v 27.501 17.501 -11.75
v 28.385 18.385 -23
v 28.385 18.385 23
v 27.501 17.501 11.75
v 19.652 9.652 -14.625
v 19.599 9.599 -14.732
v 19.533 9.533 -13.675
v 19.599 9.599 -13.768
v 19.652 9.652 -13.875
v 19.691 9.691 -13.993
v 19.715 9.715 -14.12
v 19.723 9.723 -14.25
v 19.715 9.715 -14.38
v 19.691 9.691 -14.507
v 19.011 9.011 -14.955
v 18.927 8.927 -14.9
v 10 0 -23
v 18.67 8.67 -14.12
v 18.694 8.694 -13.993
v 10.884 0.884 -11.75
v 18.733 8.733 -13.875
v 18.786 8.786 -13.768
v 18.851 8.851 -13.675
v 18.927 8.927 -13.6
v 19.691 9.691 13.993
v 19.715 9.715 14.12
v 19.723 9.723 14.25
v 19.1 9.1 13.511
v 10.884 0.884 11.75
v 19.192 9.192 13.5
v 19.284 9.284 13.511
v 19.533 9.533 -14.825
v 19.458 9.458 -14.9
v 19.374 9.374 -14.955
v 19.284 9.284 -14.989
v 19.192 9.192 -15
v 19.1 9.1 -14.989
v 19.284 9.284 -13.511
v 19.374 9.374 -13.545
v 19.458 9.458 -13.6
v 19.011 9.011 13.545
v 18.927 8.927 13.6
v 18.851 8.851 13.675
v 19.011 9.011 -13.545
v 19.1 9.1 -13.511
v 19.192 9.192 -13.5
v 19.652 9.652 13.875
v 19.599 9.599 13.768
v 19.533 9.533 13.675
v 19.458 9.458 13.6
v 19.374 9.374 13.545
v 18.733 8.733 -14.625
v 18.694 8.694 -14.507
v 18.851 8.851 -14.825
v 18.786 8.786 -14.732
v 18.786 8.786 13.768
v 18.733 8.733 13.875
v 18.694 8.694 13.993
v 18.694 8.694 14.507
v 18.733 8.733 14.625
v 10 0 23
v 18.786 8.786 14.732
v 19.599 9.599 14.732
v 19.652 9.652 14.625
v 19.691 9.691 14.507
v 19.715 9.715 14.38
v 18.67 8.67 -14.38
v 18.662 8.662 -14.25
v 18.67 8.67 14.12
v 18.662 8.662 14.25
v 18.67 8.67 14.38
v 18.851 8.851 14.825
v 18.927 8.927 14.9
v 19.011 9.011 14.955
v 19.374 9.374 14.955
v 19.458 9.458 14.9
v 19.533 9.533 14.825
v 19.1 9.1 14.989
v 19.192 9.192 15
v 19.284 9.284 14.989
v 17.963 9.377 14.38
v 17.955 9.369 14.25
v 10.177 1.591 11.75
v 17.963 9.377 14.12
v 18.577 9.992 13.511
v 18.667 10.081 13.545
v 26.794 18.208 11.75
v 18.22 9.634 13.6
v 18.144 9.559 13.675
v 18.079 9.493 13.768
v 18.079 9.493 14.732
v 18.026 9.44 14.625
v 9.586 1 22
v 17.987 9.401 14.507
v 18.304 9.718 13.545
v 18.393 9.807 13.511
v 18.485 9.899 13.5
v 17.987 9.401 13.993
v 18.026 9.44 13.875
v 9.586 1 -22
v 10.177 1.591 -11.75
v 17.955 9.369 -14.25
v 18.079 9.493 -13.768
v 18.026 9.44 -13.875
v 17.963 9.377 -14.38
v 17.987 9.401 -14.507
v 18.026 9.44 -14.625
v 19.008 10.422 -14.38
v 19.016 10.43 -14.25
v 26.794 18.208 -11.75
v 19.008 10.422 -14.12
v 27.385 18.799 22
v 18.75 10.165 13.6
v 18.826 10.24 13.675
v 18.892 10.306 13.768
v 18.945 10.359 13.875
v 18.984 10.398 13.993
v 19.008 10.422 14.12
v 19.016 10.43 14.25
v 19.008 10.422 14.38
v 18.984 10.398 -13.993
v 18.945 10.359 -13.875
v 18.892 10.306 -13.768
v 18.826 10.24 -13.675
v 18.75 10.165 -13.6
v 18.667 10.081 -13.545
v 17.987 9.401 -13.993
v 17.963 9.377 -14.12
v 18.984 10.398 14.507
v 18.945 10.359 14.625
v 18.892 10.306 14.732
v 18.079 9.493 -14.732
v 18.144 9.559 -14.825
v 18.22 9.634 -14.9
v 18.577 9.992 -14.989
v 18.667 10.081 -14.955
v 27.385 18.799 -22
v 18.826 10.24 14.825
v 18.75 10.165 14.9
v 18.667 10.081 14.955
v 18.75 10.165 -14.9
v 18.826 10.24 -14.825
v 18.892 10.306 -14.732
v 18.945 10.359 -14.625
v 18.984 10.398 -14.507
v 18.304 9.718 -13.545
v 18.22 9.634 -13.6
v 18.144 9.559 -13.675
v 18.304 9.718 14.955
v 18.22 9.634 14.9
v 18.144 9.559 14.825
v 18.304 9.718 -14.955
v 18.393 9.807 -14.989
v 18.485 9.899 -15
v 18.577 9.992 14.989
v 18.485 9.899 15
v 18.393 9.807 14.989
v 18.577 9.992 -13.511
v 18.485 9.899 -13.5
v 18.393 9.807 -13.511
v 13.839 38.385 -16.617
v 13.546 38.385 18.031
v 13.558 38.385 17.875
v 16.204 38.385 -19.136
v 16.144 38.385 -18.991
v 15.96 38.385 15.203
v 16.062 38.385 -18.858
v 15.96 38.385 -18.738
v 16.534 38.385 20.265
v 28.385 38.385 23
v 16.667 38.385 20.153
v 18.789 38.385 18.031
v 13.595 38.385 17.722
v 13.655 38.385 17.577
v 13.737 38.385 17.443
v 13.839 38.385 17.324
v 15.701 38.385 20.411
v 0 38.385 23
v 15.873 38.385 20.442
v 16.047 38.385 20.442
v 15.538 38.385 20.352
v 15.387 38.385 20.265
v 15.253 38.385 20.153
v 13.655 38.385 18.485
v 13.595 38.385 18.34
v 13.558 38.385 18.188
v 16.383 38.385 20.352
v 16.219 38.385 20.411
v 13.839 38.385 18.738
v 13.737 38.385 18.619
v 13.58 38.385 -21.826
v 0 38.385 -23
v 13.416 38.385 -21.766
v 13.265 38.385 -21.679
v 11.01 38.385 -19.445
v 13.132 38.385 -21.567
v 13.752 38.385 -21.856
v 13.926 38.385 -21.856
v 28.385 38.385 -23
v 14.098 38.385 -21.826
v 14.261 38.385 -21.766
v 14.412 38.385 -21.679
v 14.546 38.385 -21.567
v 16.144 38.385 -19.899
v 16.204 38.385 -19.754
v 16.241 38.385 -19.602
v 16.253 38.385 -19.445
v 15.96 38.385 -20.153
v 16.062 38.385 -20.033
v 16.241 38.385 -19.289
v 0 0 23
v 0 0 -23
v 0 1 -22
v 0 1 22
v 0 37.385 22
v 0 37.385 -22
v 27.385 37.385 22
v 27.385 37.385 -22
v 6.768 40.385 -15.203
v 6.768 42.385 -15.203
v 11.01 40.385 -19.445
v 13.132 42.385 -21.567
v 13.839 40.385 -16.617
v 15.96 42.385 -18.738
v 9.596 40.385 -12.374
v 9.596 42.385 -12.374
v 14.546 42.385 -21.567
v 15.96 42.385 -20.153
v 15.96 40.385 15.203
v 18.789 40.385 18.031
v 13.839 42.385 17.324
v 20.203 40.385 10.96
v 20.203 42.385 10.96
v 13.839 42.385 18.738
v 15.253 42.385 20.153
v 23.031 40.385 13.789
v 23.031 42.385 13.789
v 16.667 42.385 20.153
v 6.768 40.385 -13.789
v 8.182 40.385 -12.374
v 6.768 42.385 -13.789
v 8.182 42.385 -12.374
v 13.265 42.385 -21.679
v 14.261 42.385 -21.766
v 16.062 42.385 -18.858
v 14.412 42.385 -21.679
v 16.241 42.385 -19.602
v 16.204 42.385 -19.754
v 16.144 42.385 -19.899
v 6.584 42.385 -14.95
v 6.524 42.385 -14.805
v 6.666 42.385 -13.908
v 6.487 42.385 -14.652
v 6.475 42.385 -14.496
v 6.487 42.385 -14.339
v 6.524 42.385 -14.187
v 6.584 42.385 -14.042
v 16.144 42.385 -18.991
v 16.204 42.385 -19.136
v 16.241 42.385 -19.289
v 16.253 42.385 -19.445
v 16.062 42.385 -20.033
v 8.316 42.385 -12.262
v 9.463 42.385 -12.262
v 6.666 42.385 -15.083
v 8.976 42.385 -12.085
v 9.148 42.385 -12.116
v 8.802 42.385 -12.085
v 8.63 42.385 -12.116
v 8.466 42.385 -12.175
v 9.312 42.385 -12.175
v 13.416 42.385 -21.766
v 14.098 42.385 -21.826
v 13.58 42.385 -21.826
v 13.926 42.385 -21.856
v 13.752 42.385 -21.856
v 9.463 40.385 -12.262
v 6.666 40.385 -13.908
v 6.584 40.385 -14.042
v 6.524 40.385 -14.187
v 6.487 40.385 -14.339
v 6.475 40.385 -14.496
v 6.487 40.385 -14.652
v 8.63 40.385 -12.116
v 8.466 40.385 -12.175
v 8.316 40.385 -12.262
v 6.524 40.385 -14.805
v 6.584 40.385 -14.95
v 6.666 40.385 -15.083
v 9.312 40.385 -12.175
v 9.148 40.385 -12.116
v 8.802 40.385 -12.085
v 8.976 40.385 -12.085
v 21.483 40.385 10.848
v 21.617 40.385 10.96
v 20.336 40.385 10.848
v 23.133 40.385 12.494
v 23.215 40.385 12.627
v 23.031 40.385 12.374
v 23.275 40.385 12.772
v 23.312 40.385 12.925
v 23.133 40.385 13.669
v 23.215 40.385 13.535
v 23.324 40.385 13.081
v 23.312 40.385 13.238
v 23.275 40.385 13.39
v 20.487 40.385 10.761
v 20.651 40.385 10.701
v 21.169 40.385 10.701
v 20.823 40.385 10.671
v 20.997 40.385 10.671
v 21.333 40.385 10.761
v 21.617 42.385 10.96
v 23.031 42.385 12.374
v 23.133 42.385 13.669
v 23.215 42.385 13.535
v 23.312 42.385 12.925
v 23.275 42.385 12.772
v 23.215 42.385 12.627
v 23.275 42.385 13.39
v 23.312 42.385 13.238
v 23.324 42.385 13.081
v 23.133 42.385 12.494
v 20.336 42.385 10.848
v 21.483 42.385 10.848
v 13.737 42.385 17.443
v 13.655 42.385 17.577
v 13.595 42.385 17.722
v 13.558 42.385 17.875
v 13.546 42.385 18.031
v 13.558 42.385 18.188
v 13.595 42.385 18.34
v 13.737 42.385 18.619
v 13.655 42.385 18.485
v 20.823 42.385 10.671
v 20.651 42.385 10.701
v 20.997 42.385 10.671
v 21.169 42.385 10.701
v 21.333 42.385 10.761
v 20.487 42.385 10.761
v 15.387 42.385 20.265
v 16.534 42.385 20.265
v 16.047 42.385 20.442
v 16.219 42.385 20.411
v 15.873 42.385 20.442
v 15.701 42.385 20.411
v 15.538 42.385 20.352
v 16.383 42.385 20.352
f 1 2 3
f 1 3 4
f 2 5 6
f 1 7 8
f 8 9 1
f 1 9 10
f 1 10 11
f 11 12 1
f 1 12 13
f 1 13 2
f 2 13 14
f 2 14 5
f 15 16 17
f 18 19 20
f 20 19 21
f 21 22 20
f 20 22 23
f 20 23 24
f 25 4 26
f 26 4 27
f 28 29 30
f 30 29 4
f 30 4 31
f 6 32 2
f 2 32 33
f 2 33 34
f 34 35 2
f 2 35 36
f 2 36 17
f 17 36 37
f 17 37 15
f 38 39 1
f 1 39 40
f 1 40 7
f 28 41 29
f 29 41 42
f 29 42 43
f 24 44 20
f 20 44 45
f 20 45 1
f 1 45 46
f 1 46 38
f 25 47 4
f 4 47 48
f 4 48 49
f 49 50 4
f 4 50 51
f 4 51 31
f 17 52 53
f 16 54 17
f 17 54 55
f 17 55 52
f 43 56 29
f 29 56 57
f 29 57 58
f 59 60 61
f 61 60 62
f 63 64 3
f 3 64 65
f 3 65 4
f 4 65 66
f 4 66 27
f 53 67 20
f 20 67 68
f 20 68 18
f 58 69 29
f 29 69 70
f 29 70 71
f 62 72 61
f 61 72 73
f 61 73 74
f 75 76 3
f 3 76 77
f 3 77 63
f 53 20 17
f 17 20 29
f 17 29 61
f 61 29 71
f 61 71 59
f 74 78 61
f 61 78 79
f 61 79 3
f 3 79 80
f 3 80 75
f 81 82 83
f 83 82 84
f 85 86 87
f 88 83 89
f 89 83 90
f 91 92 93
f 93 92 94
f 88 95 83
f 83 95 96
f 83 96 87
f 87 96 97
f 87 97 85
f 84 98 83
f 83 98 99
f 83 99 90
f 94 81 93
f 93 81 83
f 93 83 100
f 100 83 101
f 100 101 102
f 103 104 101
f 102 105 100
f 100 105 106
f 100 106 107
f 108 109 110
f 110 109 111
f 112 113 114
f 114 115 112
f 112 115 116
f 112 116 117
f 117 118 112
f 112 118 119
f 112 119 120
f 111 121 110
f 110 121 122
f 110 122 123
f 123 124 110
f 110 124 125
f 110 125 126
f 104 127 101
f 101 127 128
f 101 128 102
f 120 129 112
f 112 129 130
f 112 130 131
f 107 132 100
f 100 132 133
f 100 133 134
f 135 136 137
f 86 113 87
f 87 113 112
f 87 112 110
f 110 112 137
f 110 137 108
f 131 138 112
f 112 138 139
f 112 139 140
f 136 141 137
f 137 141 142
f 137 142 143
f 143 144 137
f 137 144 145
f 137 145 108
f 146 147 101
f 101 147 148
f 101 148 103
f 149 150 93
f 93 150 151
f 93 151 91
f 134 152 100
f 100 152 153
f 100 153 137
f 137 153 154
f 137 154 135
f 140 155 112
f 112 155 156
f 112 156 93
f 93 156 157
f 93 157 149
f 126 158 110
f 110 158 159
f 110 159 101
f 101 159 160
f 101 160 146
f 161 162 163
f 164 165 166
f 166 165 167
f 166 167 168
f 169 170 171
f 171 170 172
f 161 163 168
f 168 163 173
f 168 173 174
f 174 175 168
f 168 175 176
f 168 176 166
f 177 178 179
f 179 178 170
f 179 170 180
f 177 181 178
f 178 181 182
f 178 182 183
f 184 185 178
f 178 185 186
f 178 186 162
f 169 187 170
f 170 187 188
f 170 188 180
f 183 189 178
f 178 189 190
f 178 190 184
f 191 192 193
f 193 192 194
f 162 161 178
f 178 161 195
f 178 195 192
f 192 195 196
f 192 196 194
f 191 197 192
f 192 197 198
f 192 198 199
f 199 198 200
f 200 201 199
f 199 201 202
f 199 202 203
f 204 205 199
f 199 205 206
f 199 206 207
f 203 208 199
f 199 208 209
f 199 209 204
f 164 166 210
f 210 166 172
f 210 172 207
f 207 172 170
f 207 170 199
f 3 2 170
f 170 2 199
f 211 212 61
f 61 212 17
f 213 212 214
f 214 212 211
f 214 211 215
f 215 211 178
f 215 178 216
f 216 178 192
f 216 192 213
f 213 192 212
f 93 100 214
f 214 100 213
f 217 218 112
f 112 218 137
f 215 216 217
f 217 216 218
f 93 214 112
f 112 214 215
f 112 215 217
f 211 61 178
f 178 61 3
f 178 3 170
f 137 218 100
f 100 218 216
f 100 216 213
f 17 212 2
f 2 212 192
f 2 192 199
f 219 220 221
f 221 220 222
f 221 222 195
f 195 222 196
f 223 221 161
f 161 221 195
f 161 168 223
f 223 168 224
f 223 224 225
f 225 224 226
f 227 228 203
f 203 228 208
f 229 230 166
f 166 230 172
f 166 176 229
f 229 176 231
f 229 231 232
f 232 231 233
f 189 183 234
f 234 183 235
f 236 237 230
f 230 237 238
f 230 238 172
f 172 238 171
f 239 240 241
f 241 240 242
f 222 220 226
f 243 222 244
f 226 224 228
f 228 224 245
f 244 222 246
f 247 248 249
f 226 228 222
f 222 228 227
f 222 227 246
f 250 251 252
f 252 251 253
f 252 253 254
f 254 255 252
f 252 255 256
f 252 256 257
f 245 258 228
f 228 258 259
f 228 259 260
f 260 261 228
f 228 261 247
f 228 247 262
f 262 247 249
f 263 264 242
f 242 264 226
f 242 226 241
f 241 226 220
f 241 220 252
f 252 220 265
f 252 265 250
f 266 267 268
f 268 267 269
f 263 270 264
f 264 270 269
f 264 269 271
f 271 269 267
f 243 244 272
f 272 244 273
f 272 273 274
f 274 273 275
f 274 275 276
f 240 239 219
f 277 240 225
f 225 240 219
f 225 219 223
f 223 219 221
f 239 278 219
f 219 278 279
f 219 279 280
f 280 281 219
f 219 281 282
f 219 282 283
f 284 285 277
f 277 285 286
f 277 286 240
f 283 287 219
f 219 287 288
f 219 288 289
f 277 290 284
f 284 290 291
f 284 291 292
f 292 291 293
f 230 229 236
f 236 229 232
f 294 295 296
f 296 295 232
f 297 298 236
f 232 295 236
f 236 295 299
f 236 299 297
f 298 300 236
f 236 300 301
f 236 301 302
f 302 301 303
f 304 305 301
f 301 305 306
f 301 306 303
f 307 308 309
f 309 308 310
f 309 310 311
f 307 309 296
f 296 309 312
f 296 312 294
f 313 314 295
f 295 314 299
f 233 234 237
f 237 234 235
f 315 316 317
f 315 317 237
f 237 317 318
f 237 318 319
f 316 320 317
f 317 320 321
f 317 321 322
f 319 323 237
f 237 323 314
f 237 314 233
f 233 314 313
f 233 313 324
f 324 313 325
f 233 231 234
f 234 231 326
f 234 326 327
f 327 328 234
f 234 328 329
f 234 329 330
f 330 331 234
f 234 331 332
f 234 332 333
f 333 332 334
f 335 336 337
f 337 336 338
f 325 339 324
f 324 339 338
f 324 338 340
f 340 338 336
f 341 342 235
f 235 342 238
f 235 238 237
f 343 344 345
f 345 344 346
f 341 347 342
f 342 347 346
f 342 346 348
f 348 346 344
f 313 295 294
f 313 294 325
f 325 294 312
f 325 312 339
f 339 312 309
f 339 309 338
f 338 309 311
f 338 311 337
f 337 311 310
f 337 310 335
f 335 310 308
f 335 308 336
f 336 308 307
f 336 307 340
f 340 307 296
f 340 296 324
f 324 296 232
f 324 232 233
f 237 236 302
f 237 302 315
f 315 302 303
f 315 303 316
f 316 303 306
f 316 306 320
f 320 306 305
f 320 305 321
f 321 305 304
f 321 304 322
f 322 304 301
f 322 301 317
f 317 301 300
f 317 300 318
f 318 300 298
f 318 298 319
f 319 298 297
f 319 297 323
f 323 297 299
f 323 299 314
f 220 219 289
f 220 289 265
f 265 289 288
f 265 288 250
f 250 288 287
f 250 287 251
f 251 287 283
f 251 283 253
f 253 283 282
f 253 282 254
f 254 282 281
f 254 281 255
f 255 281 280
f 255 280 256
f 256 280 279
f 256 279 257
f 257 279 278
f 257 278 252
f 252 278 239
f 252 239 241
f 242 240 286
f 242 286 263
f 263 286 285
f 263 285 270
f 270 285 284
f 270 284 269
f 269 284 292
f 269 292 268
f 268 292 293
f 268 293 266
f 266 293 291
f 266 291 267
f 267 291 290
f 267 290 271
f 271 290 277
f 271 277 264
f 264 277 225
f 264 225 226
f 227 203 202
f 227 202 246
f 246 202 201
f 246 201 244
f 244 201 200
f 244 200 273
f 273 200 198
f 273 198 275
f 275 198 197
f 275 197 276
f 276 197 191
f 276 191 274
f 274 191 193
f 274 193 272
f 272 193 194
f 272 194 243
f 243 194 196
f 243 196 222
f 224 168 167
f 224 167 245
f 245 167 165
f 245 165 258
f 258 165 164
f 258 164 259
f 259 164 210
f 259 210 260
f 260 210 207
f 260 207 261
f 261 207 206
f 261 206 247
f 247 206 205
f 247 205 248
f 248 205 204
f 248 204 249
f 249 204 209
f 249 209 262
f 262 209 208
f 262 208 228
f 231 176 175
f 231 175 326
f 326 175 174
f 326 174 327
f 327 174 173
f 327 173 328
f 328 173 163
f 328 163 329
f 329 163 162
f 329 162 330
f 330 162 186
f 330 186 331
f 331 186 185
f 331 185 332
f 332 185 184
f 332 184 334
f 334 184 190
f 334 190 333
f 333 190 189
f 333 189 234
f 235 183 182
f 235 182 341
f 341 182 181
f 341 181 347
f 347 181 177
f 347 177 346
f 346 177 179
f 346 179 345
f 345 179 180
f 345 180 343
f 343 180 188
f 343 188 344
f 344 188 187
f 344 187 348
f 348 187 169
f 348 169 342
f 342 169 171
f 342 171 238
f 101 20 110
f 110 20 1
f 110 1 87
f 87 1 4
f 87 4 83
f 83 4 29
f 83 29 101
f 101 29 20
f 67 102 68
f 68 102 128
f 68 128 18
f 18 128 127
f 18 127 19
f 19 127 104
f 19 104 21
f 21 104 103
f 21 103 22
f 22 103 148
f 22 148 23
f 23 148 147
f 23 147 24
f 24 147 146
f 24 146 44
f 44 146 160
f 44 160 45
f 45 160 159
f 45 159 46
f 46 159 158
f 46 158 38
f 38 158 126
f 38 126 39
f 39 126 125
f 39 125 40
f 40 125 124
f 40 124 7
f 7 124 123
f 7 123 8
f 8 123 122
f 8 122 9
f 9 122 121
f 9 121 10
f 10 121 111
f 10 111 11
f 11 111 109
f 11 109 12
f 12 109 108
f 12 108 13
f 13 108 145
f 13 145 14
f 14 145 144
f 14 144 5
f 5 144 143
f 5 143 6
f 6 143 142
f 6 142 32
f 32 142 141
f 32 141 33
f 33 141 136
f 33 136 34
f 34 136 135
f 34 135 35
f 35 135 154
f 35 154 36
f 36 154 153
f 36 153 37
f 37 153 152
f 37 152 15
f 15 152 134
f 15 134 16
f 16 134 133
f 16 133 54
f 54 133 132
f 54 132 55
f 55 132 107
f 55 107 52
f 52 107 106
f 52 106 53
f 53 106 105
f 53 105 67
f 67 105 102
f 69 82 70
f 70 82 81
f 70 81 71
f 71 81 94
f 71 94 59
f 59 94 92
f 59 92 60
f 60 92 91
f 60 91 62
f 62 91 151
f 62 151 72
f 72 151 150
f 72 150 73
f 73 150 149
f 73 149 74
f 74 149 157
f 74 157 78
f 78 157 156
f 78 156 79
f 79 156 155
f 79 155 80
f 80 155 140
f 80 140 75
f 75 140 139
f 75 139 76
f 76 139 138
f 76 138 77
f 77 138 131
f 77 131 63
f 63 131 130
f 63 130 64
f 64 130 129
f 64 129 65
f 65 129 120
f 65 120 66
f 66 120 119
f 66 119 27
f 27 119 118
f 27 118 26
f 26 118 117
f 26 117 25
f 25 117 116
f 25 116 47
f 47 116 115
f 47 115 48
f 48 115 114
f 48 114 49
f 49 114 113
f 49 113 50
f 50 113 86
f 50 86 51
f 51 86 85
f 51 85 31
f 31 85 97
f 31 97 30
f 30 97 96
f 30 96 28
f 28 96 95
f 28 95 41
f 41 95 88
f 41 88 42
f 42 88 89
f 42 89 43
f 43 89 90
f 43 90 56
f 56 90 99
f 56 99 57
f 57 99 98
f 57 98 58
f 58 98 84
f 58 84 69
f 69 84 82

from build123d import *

# Parameters (mm, degrees)
BOSS_EXTRU_1_DEPTH                  = 22
BOSS_EXTRU_1_DEPTH_BACK             = 22
BOSS_EXTRU_5_START                  = 22
BOSS_EXTRU_5_DEPTH                  = 1
BOSS_EXTRU_6_START                  = -22
BOSS_EXTRU_6_DEPTH                  = 1
BOSS_EXTRU_7_DEPTH                  = 2
BOSS_EXTRU_8_DEPTH                  = 2
CONG_1_R                            = 1
ENL_V_MAT_EXTRU_1_REACH             = 59.63
ESQUISSE6_R                         = 0.75
ESQUISSE6_W                         = 23.5
ESQUISSE6_H                         = 23.5
ENL_V_MAT_EXTRU_1_DIRECTION_2_DEPTH = 2


with BuildPart() as part:
    # Esquisse1 → Boss.-Extru.1 (new, two sides: drawn at the far end of the back side and taken through both)
    with BuildSketch(Plane.XY.offset(-BOSS_EXTRU_1_DEPTH_BACK)):
        Polygon((0, 38.384776311), (28.384776311, 38.384776311), (28.384776311, 18.384776311), (10, 0), (0, 0), (0, 1), (9.585786438, 1), (27.384776311, 18.798989873), (27.384776311, 37.384776311), (0, 37.384776311), align=None)
    extrude(amount=BOSS_EXTRU_1_DEPTH + BOSS_EXTRU_1_DEPTH_BACK)

    # Esquisse2 → Boss.-Extru.5 (add)
    with BuildSketch(Plane.XY.offset(BOSS_EXTRU_5_START)):
        Polygon((28.384776311, 38.384776311), (0, 38.384776311), (0, 0), (10, 0), (28.384776311, 18.384776311), align=None)
    extrude(amount=BOSS_EXTRU_5_DEPTH)

    # Esquisse3 → Boss.-Extru.6 (add)
    with BuildSketch(Plane.XY.offset(BOSS_EXTRU_6_START)):
        Polygon((0, 38.384776311), (0, 0), (10, 0), (28.384776311, 18.384776311), (28.384776311, 38.384776311), align=None)
    extrude(amount=-BOSS_EXTRU_6_DEPTH)

    # Esquisse4 → Boss.-Extru.7 (add)
    with BuildSketch(Plane(origin=(0, 38.384776311, 0), x_dir=(1, 0, 0), z_dir=(0, 1, 0))):
        Polygon((11.01040764, 19.445436483), (13.838834765, 16.617009358), (16.66726189, 19.445436483), (13.838834765, 22.273863607), align=None)
        Polygon((15.960155108, -20.859650045), (18.788582233, -18.03122292), (15.960155108, -15.202795796), (13.131727984, -18.03122292), align=None)
    extrude(amount=BOSS_EXTRU_7_DEPTH)

    # Esquisse5 → Boss.-Extru.8 (add)
    with BuildSketch(Plane(origin=(0, 40.384776311, 0), x_dir=(1, 0, 0), z_dir=(0, 1, 0))):
        Polygon((13.838834765, 22.273863607), (16.66726189, 19.445436483), (8.889087297, 11.66726189), (6.060660172, 14.495689014), align=None)
        Polygon((13.131727984, -18.03122292), (15.960155108, -20.859650045), (23.738329701, -13.081475452), (20.909902577, -10.253048327), align=None)
    extrude(amount=BOSS_EXTRU_8_DEPTH)

    # Congé1
    cong_1_edges = [part.edges().sort_by_distance(p)[0] for p in [
        (20.909902577, 41.384776311, 10.253048327),
        (23.738329701, 41.384776311, 13.081475452),
        (6.060660172, 41.384776311, -14.495689014),
        (8.889087297, 41.384776311, -11.66726189),
        (13.838834765, 40.384776311, -22.273863607),
        (16.66726189, 40.384776311, -19.445436483),
        (13.131727984, 40.384776311, 18.03122292),
        (15.960155108, 40.384776311, 20.859650045),
    ]]
    fillet(cong_1_edges, radius=CONG_1_R)

    # Esquisse6 → Enlèv. mat.-Extru.1 (cut, up to next)
    with BuildSketch(Plane(origin=(5, -5, 0), x_dir=(0, 0, -1), z_dir=(0.707106781186549, -0.707106781186546, 0)), mode=Mode.PRIVATE) as enl_v_mat_extru_1_sk1:
        with Locations((14.25, 20.071067812)):
            Circle(ESQUISSE6_R)
    enl_v_mat_extru_1_tool1 = extrude(enl_v_mat_extru_1_sk1.sketch, amount=-ENL_V_MAT_EXTRU_1_REACH, mode=Mode.PRIVATE) & part.part
    # Esquisse6 → Enlèv. mat.-Extru.1 (cut, up to next)
    with BuildSketch(Plane(origin=(5, -5, 0), x_dir=(0, 0, -1), z_dir=(0.707106781186549, -0.707106781186546, 0)), mode=Mode.PRIVATE) as enl_v_mat_extru_1_sk2:
        with Locations((-14.25, 20.071067812)):
            Circle(ESQUISSE6_R)
    enl_v_mat_extru_1_tool2 = extrude(enl_v_mat_extru_1_sk2.sketch, amount=-ENL_V_MAT_EXTRU_1_REACH, mode=Mode.PRIVATE) & part.part
    # Esquisse6 → Enlèv. mat.-Extru.1 (cut, up to next)
    with BuildSketch(Plane(origin=(5, -5, 0), x_dir=(0, 0, -1), z_dir=(0.707106781186549, -0.707106781186546, 0)), mode=Mode.PRIVATE) as enl_v_mat_extru_1_sk3:
        with Locations((0, 20.071067812)):
            Rectangle(ESQUISSE6_W, ESQUISSE6_H)
    enl_v_mat_extru_1_tool3 = extrude(enl_v_mat_extru_1_sk3.sketch, amount=-ENL_V_MAT_EXTRU_1_REACH, mode=Mode.PRIVATE) & part.part
    add(enl_v_mat_extru_1_tool1.solids().sort_by_distance((19.192388, 9.192388, -14.25))[0], mode=Mode.SUBTRACT)
    add(enl_v_mat_extru_1_tool2.solids().sort_by_distance((19.192388, 9.192388, 14.25))[0], mode=Mode.SUBTRACT)
    add(enl_v_mat_extru_1_tool3.solids().sort_by_distance((19.192388, 9.192388, 0))[0], mode=Mode.SUBTRACT)

    # Esquisse6 → Enlèv. mat.-Extru.1 direction 2 (cut)
    with BuildSketch(Plane(origin=(5, -5, 0), x_dir=(0, 0, -1), z_dir=(0.707106781186549, -0.707106781186546, 0))):
        with Locations((14.25, 20.071067812)):
            Circle(ESQUISSE6_R)
        with Locations((-14.25, 20.071067812)):
            Circle(ESQUISSE6_R)
        with Locations((0, 20.071067812)):
            Rectangle(ESQUISSE6_W, ESQUISSE6_H)
    extrude(amount=ENL_V_MAT_EXTRU_1_DIRECTION_2_DEPTH, mode=Mode.SUBTRACT)


solid = part.part
